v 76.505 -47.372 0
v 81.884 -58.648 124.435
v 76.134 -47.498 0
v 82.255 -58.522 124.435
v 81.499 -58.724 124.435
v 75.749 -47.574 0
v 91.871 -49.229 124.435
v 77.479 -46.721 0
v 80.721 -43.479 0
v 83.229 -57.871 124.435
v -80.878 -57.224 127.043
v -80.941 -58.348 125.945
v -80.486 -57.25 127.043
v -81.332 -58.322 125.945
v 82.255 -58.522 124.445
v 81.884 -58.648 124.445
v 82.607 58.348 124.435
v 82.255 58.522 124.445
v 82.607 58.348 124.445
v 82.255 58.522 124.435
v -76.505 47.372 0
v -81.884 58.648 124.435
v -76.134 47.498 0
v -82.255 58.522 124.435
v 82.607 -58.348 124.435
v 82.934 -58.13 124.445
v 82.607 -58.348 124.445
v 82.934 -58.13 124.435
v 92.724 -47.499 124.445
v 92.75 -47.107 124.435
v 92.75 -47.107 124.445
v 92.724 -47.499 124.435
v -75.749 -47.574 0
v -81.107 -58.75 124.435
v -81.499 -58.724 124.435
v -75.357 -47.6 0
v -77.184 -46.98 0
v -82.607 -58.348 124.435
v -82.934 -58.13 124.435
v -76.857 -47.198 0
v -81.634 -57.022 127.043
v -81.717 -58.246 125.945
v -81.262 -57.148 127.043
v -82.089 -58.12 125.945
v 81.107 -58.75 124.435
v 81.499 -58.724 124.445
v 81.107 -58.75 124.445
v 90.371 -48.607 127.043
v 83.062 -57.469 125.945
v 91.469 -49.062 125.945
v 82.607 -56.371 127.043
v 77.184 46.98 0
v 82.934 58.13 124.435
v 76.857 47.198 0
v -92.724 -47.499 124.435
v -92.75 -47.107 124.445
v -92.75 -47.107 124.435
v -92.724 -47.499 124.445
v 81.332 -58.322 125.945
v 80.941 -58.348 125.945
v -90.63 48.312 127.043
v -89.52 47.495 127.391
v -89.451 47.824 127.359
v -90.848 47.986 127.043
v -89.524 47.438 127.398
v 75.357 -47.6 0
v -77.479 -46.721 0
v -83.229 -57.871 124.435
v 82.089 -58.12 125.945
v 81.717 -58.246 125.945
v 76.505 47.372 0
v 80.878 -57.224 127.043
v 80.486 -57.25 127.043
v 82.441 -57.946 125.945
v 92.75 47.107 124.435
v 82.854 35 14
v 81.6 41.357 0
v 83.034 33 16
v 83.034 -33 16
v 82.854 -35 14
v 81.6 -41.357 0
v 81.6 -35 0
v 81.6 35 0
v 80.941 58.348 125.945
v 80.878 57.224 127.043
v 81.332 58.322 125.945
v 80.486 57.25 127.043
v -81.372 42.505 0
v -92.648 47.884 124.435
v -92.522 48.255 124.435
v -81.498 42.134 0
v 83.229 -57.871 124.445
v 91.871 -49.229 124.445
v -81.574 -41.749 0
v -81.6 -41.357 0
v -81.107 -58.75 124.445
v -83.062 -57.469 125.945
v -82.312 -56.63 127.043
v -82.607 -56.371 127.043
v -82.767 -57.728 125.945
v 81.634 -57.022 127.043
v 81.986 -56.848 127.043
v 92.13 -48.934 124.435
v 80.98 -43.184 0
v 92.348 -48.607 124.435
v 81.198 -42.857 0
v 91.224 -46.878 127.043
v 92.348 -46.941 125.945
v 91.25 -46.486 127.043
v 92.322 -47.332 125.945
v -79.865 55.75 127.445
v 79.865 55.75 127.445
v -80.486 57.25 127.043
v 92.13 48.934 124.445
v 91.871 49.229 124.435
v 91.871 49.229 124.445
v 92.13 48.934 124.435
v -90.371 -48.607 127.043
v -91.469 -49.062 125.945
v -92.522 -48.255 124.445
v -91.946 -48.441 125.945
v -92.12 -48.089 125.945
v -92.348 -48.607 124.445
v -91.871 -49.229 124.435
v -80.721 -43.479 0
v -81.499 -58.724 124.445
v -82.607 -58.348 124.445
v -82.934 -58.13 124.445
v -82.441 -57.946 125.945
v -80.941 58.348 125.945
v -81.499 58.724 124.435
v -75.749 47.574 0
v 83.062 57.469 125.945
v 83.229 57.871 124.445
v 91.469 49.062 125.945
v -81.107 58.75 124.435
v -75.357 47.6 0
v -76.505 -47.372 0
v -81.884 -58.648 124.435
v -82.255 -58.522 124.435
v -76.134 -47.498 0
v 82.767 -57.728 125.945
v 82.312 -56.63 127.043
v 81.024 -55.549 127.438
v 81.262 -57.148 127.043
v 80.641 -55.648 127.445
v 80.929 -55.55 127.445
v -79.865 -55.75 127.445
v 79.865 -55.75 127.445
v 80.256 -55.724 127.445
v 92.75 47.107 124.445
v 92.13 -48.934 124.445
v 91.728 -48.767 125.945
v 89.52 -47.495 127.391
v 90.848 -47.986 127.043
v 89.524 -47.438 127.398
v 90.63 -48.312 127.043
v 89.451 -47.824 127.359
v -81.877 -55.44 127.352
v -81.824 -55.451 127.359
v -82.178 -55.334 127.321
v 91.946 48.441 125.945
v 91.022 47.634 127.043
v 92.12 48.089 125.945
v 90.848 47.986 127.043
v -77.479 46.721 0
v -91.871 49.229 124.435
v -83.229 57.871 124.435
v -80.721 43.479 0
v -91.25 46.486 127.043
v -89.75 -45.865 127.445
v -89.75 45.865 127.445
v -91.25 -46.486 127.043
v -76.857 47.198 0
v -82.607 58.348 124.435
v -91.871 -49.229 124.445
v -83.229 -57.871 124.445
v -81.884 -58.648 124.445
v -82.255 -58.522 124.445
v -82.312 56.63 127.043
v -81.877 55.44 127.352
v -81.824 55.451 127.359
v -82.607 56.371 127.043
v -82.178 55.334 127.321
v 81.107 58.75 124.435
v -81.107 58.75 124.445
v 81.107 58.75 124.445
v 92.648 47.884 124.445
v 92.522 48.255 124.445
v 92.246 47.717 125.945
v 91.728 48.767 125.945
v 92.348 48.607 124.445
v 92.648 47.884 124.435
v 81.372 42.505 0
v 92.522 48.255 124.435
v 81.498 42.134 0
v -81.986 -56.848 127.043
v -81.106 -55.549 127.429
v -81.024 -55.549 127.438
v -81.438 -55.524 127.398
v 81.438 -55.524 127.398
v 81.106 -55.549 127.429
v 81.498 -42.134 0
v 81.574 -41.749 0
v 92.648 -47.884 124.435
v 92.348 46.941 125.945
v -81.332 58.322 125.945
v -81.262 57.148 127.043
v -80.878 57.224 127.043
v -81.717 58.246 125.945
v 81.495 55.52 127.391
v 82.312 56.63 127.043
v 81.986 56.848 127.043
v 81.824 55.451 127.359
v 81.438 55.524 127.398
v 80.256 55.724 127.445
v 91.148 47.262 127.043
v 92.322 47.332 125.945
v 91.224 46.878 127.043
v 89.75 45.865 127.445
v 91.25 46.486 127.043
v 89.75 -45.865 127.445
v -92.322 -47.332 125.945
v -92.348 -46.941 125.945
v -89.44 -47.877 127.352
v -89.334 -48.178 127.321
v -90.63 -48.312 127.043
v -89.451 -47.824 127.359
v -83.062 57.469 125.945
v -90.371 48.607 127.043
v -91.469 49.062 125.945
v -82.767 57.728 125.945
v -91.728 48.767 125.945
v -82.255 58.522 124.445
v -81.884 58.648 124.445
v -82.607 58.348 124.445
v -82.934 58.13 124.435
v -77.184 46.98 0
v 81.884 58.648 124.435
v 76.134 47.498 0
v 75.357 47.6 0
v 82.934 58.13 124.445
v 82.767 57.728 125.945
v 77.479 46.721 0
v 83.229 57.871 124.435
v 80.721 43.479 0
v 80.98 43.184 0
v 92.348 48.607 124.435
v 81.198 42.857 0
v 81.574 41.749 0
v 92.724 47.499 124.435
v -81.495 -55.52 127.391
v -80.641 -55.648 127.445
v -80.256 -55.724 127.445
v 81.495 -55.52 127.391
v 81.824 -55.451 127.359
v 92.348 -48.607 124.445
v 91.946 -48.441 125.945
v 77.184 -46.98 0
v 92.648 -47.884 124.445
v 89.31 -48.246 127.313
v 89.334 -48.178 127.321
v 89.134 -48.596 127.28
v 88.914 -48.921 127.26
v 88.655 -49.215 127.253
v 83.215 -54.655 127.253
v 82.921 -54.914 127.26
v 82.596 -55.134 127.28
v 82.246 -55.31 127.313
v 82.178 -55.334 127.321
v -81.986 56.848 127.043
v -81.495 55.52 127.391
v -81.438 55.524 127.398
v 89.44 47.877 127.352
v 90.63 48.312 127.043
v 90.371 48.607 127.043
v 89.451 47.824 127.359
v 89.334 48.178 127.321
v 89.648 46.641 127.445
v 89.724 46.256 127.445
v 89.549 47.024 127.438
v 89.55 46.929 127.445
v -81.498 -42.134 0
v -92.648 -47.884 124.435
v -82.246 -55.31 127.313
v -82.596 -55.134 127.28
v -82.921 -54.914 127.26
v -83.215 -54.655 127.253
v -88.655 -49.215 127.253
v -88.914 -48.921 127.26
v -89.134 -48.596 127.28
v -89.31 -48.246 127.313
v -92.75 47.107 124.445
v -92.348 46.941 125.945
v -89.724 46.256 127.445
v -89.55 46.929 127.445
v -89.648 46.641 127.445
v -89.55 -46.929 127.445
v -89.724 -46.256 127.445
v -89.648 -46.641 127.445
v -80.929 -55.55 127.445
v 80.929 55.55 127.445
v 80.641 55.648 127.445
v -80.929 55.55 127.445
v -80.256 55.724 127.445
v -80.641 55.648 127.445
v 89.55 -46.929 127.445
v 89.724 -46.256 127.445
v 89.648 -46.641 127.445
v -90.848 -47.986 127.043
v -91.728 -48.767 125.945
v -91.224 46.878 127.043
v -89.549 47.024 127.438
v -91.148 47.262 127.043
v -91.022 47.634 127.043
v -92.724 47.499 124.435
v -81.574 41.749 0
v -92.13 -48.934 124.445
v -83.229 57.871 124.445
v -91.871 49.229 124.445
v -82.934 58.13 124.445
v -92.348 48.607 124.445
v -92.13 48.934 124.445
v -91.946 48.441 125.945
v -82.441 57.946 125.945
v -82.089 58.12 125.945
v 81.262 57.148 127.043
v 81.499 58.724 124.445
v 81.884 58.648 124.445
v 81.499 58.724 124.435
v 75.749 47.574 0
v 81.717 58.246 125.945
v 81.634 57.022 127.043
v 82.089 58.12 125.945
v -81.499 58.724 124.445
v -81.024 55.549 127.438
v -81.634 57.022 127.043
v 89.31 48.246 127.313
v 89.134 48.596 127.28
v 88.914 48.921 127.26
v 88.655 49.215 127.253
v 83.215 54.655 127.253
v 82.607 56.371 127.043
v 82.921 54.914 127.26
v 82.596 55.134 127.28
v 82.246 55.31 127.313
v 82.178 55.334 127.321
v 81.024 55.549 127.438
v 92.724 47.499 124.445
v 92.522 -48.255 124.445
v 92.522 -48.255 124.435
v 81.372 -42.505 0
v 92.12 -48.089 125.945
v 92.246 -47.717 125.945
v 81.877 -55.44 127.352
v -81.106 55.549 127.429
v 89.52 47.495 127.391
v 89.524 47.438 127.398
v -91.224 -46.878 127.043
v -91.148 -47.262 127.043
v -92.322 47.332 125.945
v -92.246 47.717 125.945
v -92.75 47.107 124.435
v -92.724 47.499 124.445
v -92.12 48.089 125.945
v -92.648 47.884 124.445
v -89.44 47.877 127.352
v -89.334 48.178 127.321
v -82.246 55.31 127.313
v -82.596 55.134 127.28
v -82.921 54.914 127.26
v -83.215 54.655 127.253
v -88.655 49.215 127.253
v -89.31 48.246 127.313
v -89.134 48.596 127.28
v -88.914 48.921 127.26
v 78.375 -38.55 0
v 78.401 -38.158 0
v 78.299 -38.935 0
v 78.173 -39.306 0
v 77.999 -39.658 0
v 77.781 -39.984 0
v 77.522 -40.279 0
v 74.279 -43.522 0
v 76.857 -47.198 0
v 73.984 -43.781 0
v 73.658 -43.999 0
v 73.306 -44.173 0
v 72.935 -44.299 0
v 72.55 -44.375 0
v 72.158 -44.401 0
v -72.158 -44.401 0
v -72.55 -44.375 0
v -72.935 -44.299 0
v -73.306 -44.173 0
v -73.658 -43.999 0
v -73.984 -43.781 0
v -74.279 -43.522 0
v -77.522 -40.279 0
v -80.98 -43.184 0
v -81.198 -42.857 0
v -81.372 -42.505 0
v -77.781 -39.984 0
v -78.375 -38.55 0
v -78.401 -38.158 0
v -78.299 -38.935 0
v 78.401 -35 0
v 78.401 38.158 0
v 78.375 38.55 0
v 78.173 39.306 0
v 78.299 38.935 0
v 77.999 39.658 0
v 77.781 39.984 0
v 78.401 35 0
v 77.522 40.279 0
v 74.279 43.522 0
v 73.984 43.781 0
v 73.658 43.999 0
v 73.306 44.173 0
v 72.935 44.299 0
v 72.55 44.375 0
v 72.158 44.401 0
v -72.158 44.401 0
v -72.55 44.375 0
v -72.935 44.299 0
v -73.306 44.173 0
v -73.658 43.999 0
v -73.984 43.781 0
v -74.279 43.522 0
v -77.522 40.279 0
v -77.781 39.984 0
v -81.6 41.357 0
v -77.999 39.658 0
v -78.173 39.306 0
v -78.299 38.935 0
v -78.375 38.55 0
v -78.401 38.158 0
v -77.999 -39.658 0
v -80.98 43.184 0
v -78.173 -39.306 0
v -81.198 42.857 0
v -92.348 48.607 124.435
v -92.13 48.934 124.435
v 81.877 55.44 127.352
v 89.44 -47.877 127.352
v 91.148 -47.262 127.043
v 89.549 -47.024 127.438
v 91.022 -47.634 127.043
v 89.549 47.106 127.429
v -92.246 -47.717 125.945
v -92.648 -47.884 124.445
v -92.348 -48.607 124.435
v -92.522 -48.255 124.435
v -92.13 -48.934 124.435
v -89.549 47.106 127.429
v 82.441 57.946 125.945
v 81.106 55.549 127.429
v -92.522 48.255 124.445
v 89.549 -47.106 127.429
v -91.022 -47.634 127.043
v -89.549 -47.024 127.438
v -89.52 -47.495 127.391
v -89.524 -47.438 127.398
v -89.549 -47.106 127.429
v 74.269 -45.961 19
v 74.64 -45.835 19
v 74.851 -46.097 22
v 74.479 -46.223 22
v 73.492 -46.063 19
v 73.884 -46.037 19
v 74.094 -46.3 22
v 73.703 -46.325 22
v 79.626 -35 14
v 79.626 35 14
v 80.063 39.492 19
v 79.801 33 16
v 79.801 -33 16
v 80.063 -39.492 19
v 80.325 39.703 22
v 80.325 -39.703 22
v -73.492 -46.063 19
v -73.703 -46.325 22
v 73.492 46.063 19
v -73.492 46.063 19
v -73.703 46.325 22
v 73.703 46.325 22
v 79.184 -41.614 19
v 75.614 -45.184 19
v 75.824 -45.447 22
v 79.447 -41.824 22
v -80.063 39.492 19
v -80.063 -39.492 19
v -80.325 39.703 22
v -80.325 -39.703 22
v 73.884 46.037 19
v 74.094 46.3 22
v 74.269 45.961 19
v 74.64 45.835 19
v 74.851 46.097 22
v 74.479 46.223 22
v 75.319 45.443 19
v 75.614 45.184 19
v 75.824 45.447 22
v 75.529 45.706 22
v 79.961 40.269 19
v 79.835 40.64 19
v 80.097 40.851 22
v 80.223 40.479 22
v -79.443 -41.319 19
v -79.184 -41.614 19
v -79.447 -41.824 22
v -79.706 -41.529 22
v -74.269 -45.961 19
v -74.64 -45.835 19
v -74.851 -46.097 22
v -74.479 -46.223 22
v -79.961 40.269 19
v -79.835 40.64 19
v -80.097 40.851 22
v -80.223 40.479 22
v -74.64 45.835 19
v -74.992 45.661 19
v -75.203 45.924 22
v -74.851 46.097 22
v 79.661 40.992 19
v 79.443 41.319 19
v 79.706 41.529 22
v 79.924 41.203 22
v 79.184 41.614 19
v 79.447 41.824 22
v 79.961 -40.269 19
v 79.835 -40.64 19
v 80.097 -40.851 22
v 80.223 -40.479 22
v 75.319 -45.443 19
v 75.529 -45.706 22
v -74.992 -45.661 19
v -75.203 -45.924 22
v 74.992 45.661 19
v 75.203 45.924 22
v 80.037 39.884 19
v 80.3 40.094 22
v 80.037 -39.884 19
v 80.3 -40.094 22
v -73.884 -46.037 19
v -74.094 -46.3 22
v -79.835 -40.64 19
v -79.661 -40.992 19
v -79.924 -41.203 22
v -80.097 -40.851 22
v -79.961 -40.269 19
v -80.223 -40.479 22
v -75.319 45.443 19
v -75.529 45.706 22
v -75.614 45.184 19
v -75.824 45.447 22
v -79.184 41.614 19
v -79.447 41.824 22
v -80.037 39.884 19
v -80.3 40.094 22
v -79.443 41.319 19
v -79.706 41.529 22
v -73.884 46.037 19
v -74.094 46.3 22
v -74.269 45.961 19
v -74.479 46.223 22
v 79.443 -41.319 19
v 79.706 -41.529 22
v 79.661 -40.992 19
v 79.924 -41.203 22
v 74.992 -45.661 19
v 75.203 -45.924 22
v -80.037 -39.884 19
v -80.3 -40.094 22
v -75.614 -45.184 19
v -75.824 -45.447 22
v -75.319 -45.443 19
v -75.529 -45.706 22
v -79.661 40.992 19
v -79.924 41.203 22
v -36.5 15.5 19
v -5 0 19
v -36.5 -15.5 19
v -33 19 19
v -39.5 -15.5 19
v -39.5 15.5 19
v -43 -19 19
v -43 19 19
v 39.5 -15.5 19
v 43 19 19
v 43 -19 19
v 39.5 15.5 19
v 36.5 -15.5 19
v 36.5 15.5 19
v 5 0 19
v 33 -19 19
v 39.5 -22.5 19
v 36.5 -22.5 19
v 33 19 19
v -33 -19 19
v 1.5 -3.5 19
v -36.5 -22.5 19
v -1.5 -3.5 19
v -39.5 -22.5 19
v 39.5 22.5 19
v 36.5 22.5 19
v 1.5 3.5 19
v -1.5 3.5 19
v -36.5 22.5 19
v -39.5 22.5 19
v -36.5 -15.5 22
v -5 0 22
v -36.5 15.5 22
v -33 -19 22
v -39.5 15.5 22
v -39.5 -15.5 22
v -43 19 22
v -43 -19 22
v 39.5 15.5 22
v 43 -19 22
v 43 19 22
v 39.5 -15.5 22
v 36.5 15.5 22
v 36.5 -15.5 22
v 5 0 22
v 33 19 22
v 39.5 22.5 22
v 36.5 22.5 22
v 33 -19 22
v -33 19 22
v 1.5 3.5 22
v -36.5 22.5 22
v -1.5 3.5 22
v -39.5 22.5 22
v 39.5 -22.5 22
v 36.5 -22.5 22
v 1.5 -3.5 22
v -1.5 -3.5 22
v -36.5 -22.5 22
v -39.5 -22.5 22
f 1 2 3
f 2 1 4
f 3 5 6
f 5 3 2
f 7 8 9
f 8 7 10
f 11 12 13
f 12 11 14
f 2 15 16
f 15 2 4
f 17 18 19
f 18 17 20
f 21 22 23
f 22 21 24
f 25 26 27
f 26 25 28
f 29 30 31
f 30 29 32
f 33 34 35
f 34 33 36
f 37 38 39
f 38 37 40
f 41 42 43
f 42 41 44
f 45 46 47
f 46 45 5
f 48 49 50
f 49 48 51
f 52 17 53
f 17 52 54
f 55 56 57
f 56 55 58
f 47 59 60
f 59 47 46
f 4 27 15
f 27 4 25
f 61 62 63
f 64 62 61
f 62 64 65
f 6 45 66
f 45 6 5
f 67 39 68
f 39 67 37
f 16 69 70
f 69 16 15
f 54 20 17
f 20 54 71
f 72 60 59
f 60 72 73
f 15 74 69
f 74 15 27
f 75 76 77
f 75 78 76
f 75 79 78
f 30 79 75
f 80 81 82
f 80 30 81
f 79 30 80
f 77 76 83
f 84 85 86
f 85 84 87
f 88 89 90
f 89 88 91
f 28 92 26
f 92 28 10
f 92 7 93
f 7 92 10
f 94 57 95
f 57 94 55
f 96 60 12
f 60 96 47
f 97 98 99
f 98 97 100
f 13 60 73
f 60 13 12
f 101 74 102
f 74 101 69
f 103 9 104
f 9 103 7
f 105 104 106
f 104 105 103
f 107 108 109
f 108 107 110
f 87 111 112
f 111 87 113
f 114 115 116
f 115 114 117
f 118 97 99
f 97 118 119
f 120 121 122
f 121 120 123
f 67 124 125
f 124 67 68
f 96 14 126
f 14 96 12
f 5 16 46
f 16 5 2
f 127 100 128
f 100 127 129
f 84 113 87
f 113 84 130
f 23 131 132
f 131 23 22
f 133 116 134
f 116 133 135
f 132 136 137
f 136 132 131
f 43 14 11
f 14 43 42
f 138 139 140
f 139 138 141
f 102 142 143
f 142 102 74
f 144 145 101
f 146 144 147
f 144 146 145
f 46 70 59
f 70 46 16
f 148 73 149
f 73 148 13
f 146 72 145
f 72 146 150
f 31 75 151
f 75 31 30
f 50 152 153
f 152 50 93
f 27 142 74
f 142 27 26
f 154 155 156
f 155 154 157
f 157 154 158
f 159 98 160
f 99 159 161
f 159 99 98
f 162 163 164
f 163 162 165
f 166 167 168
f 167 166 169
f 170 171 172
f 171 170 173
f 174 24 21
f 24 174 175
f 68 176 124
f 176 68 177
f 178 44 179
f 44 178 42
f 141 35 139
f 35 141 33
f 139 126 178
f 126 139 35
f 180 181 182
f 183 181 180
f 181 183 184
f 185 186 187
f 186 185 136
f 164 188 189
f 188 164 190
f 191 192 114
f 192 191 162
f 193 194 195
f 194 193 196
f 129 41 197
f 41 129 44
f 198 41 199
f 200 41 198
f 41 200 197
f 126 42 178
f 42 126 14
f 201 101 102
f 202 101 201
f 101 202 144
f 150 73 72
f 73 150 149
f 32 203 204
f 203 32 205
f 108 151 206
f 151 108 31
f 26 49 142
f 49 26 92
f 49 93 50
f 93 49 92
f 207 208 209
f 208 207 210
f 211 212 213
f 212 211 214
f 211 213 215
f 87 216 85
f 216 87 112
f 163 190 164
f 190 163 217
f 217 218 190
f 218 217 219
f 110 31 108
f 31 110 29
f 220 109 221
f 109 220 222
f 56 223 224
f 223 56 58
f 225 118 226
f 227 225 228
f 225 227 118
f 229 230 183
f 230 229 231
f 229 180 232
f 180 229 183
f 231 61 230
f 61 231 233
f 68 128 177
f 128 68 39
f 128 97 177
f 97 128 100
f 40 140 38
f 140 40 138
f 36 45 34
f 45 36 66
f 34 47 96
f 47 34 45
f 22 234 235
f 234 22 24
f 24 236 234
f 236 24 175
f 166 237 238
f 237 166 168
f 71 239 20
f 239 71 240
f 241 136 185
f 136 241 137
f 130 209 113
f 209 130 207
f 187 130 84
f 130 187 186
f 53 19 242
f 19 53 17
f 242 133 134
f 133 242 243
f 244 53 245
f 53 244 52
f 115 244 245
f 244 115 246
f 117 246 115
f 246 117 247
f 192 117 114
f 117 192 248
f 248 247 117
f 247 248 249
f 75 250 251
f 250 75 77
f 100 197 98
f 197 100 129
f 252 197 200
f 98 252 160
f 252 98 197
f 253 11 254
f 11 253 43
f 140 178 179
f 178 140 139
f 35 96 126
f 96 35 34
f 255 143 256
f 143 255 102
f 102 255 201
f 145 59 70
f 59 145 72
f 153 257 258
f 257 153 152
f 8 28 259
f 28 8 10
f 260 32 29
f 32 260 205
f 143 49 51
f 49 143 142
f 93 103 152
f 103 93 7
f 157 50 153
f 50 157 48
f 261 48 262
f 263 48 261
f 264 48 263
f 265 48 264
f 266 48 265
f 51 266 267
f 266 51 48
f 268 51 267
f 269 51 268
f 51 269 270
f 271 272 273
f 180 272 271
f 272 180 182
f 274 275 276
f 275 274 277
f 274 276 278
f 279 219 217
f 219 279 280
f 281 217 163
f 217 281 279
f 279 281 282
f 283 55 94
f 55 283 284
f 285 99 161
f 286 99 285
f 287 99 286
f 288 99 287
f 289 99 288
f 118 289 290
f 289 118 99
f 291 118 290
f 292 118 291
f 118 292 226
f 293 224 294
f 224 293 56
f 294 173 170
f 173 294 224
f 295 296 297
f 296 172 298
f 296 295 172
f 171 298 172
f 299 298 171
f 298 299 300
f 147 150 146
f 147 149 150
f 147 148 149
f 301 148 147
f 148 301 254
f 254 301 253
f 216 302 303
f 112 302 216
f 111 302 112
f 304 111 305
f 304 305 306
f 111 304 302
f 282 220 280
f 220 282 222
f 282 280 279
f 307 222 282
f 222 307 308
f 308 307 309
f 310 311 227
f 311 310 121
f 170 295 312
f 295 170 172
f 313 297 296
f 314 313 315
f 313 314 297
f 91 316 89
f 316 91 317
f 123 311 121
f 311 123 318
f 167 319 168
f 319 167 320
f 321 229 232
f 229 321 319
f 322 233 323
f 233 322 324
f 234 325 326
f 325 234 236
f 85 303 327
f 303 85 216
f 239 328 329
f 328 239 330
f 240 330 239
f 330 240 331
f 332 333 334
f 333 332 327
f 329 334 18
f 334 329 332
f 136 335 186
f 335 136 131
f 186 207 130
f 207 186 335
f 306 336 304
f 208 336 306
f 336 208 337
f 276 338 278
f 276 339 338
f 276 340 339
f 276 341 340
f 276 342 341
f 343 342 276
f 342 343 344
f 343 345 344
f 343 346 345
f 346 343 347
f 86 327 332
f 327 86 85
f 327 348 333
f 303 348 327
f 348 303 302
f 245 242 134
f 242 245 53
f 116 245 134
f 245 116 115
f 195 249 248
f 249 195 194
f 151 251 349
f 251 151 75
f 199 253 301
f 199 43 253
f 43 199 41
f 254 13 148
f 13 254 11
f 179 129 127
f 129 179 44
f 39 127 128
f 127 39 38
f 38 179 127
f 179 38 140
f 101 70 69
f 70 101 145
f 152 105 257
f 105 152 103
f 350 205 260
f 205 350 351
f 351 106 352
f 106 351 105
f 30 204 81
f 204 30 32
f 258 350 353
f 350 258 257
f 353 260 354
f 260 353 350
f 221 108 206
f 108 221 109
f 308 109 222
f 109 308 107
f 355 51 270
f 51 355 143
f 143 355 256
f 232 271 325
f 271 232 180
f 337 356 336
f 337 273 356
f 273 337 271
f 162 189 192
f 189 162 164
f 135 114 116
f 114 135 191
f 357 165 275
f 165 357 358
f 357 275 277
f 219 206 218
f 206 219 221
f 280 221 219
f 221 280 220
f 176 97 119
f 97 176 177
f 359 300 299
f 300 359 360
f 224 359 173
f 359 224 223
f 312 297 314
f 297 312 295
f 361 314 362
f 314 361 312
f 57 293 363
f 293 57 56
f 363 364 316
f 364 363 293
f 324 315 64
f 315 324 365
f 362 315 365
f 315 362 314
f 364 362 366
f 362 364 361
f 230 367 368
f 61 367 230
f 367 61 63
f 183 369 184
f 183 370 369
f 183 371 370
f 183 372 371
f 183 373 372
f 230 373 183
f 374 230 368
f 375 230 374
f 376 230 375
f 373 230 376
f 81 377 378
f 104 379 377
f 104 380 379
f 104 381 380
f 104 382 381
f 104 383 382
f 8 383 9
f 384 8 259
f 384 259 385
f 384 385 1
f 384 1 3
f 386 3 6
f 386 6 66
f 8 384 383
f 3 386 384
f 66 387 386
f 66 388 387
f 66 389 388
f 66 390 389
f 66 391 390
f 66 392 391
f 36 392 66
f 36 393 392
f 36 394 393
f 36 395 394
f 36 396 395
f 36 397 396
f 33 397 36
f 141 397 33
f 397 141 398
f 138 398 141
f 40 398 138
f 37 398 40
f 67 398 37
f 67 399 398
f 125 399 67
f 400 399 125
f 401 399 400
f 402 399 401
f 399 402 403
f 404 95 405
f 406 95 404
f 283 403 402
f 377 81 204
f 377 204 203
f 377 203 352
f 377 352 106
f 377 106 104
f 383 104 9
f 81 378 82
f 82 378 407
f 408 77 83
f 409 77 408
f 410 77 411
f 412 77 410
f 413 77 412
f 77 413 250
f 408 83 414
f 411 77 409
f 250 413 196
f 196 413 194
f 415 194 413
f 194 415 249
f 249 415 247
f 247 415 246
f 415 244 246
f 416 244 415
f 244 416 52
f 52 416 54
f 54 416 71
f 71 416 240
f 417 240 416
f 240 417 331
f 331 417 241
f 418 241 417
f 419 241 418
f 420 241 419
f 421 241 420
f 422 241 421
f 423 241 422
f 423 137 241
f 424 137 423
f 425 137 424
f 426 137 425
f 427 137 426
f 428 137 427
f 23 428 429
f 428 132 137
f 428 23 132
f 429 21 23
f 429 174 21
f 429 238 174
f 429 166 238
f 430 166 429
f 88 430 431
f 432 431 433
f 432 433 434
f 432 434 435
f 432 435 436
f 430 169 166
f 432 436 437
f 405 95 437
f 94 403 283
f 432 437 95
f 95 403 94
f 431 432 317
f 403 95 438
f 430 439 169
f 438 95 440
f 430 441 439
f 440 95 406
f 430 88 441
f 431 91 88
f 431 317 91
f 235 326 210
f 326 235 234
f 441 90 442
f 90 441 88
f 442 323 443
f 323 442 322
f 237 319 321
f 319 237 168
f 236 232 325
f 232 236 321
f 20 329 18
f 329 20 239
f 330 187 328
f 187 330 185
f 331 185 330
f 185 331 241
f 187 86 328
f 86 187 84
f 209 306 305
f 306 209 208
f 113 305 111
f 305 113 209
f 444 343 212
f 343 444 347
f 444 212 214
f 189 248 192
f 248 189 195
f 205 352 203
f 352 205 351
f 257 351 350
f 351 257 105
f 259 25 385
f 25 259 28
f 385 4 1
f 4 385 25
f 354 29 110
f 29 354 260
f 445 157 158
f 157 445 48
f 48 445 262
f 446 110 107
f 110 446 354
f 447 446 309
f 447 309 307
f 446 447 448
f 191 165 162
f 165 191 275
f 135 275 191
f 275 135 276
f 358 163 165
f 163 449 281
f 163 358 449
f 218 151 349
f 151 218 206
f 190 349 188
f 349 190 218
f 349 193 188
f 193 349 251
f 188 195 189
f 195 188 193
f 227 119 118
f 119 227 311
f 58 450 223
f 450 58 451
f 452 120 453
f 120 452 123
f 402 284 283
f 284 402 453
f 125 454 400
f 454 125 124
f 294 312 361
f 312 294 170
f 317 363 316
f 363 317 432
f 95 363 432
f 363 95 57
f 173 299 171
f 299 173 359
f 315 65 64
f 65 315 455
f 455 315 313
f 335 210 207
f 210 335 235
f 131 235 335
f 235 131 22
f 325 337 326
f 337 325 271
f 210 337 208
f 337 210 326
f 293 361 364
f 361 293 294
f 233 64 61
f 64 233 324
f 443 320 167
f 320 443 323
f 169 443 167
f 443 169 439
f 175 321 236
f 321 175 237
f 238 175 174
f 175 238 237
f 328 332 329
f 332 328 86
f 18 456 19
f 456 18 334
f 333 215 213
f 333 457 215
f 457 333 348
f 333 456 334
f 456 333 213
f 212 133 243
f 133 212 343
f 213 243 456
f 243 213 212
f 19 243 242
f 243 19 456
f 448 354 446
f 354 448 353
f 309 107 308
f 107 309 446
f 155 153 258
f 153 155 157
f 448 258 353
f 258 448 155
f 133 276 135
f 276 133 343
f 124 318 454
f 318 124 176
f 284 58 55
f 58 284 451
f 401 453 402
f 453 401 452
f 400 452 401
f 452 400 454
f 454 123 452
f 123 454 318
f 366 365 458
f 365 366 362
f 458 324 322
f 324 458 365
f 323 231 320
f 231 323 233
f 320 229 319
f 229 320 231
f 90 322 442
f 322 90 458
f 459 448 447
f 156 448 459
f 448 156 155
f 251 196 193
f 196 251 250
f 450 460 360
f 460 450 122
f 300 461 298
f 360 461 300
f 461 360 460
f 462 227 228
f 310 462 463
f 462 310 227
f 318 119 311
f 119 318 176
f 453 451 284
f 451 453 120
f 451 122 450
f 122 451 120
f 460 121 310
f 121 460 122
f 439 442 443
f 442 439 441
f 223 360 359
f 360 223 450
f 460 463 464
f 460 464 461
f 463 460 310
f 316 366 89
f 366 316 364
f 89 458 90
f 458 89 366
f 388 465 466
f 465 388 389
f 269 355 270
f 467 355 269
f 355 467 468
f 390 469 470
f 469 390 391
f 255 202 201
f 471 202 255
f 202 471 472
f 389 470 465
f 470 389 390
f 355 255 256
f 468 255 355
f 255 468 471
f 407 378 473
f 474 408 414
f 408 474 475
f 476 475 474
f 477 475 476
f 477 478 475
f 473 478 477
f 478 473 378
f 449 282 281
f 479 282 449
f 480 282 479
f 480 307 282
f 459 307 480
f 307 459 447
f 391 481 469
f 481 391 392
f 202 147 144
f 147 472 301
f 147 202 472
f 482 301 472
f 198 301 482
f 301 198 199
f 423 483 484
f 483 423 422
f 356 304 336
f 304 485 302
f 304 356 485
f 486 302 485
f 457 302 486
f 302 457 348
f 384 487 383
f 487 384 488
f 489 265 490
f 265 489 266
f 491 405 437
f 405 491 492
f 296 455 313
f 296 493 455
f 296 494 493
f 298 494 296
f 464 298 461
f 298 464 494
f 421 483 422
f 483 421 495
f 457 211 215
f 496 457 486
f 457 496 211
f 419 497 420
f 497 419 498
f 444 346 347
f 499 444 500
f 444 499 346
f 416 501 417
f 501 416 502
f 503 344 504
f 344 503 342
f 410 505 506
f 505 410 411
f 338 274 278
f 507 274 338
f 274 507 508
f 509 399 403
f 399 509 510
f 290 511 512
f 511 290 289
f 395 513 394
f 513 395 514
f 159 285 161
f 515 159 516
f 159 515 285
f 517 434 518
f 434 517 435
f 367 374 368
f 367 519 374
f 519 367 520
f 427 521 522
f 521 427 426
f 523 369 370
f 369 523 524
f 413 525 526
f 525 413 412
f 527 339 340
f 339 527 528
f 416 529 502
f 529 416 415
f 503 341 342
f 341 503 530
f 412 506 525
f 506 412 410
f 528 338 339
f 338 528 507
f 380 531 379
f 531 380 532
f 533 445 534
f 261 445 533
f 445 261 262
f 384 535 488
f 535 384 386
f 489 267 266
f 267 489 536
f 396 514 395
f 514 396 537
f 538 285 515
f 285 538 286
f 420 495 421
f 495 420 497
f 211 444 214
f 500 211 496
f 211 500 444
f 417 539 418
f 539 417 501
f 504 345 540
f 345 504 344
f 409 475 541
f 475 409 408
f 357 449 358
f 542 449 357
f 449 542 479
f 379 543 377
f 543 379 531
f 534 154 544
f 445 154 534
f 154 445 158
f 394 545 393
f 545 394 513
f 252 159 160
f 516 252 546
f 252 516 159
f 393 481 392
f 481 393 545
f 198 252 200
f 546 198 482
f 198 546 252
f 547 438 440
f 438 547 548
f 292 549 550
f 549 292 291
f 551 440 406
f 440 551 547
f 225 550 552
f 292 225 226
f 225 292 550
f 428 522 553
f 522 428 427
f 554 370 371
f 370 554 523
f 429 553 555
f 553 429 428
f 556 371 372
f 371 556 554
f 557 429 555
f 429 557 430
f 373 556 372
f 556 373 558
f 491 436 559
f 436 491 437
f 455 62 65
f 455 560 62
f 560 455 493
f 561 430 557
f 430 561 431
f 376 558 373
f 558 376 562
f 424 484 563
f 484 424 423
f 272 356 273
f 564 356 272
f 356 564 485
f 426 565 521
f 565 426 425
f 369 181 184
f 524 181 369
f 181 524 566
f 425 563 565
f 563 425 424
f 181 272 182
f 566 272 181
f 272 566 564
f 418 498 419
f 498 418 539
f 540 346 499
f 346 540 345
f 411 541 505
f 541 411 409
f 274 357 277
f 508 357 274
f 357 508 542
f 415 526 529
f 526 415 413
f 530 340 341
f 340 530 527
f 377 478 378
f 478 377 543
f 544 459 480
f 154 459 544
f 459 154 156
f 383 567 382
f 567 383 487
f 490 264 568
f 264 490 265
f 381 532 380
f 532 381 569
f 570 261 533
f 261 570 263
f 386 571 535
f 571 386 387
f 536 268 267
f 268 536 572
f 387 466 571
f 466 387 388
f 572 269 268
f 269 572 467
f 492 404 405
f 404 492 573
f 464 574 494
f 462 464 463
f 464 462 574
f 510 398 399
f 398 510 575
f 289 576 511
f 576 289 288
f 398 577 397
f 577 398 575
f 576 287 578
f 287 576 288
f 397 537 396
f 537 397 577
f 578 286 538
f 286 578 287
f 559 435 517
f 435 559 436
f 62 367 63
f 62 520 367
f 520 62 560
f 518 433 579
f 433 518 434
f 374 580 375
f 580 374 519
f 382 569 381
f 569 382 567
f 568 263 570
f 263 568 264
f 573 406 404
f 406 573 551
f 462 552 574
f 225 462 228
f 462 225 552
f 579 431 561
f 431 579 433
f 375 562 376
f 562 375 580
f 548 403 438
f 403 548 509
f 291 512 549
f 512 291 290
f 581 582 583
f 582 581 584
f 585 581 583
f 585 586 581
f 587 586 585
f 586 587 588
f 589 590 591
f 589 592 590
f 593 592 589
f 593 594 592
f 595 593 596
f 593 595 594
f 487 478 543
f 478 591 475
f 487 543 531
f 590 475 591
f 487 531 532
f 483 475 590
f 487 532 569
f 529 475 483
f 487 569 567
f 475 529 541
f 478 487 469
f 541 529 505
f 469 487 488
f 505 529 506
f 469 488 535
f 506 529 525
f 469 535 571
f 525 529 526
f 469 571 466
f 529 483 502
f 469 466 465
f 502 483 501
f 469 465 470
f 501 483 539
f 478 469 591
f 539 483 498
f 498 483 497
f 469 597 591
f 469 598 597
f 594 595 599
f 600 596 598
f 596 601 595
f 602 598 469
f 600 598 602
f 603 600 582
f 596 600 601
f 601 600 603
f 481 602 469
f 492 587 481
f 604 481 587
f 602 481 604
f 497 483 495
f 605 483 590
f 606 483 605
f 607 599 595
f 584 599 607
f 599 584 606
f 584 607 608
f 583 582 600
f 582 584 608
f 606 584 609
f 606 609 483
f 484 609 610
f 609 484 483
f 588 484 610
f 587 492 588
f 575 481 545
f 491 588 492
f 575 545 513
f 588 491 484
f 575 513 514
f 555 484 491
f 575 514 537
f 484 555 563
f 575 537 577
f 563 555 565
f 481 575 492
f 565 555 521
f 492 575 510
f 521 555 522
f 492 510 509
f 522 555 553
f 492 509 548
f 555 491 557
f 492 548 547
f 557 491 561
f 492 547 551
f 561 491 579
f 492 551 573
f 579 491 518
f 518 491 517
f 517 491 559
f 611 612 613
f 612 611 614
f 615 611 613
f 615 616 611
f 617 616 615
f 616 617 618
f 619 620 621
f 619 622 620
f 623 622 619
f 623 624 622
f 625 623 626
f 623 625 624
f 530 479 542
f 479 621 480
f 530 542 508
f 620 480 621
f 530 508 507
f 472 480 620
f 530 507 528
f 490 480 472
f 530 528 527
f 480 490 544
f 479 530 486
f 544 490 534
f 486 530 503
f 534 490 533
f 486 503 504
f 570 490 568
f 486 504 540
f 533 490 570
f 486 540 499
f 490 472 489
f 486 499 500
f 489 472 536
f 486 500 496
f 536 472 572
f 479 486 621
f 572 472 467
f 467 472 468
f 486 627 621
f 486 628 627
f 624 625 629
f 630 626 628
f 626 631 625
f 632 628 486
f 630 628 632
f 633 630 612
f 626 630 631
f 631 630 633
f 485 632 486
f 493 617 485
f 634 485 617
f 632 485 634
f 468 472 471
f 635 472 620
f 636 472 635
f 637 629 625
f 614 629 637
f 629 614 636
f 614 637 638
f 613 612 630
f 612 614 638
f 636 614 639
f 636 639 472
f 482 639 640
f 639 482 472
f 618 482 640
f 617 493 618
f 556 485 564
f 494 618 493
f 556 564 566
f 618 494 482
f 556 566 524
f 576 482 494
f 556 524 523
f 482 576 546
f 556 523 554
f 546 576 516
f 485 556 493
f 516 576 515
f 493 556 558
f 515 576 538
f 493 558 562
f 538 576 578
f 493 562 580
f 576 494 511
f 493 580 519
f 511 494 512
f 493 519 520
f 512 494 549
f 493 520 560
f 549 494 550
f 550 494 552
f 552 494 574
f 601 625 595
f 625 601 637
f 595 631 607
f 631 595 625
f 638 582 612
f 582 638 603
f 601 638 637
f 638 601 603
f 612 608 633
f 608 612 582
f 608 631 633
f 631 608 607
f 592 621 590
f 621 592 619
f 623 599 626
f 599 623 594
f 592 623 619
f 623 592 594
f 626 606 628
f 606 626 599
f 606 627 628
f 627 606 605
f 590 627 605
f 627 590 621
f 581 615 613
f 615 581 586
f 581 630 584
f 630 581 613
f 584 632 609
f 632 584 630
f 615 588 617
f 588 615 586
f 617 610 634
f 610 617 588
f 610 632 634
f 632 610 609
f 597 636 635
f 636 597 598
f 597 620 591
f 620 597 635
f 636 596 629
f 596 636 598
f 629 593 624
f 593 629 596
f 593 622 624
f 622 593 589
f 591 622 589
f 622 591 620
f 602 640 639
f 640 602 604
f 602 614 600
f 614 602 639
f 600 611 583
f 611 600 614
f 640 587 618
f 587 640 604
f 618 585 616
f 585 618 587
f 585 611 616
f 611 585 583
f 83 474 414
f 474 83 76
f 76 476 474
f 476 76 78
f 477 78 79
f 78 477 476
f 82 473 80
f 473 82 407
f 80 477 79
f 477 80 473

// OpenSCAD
// Pot only — print lying on the back (+X) face. See marsh_repot_014.scad.
include <marsh_repot_014.scad>
part = "pot";
